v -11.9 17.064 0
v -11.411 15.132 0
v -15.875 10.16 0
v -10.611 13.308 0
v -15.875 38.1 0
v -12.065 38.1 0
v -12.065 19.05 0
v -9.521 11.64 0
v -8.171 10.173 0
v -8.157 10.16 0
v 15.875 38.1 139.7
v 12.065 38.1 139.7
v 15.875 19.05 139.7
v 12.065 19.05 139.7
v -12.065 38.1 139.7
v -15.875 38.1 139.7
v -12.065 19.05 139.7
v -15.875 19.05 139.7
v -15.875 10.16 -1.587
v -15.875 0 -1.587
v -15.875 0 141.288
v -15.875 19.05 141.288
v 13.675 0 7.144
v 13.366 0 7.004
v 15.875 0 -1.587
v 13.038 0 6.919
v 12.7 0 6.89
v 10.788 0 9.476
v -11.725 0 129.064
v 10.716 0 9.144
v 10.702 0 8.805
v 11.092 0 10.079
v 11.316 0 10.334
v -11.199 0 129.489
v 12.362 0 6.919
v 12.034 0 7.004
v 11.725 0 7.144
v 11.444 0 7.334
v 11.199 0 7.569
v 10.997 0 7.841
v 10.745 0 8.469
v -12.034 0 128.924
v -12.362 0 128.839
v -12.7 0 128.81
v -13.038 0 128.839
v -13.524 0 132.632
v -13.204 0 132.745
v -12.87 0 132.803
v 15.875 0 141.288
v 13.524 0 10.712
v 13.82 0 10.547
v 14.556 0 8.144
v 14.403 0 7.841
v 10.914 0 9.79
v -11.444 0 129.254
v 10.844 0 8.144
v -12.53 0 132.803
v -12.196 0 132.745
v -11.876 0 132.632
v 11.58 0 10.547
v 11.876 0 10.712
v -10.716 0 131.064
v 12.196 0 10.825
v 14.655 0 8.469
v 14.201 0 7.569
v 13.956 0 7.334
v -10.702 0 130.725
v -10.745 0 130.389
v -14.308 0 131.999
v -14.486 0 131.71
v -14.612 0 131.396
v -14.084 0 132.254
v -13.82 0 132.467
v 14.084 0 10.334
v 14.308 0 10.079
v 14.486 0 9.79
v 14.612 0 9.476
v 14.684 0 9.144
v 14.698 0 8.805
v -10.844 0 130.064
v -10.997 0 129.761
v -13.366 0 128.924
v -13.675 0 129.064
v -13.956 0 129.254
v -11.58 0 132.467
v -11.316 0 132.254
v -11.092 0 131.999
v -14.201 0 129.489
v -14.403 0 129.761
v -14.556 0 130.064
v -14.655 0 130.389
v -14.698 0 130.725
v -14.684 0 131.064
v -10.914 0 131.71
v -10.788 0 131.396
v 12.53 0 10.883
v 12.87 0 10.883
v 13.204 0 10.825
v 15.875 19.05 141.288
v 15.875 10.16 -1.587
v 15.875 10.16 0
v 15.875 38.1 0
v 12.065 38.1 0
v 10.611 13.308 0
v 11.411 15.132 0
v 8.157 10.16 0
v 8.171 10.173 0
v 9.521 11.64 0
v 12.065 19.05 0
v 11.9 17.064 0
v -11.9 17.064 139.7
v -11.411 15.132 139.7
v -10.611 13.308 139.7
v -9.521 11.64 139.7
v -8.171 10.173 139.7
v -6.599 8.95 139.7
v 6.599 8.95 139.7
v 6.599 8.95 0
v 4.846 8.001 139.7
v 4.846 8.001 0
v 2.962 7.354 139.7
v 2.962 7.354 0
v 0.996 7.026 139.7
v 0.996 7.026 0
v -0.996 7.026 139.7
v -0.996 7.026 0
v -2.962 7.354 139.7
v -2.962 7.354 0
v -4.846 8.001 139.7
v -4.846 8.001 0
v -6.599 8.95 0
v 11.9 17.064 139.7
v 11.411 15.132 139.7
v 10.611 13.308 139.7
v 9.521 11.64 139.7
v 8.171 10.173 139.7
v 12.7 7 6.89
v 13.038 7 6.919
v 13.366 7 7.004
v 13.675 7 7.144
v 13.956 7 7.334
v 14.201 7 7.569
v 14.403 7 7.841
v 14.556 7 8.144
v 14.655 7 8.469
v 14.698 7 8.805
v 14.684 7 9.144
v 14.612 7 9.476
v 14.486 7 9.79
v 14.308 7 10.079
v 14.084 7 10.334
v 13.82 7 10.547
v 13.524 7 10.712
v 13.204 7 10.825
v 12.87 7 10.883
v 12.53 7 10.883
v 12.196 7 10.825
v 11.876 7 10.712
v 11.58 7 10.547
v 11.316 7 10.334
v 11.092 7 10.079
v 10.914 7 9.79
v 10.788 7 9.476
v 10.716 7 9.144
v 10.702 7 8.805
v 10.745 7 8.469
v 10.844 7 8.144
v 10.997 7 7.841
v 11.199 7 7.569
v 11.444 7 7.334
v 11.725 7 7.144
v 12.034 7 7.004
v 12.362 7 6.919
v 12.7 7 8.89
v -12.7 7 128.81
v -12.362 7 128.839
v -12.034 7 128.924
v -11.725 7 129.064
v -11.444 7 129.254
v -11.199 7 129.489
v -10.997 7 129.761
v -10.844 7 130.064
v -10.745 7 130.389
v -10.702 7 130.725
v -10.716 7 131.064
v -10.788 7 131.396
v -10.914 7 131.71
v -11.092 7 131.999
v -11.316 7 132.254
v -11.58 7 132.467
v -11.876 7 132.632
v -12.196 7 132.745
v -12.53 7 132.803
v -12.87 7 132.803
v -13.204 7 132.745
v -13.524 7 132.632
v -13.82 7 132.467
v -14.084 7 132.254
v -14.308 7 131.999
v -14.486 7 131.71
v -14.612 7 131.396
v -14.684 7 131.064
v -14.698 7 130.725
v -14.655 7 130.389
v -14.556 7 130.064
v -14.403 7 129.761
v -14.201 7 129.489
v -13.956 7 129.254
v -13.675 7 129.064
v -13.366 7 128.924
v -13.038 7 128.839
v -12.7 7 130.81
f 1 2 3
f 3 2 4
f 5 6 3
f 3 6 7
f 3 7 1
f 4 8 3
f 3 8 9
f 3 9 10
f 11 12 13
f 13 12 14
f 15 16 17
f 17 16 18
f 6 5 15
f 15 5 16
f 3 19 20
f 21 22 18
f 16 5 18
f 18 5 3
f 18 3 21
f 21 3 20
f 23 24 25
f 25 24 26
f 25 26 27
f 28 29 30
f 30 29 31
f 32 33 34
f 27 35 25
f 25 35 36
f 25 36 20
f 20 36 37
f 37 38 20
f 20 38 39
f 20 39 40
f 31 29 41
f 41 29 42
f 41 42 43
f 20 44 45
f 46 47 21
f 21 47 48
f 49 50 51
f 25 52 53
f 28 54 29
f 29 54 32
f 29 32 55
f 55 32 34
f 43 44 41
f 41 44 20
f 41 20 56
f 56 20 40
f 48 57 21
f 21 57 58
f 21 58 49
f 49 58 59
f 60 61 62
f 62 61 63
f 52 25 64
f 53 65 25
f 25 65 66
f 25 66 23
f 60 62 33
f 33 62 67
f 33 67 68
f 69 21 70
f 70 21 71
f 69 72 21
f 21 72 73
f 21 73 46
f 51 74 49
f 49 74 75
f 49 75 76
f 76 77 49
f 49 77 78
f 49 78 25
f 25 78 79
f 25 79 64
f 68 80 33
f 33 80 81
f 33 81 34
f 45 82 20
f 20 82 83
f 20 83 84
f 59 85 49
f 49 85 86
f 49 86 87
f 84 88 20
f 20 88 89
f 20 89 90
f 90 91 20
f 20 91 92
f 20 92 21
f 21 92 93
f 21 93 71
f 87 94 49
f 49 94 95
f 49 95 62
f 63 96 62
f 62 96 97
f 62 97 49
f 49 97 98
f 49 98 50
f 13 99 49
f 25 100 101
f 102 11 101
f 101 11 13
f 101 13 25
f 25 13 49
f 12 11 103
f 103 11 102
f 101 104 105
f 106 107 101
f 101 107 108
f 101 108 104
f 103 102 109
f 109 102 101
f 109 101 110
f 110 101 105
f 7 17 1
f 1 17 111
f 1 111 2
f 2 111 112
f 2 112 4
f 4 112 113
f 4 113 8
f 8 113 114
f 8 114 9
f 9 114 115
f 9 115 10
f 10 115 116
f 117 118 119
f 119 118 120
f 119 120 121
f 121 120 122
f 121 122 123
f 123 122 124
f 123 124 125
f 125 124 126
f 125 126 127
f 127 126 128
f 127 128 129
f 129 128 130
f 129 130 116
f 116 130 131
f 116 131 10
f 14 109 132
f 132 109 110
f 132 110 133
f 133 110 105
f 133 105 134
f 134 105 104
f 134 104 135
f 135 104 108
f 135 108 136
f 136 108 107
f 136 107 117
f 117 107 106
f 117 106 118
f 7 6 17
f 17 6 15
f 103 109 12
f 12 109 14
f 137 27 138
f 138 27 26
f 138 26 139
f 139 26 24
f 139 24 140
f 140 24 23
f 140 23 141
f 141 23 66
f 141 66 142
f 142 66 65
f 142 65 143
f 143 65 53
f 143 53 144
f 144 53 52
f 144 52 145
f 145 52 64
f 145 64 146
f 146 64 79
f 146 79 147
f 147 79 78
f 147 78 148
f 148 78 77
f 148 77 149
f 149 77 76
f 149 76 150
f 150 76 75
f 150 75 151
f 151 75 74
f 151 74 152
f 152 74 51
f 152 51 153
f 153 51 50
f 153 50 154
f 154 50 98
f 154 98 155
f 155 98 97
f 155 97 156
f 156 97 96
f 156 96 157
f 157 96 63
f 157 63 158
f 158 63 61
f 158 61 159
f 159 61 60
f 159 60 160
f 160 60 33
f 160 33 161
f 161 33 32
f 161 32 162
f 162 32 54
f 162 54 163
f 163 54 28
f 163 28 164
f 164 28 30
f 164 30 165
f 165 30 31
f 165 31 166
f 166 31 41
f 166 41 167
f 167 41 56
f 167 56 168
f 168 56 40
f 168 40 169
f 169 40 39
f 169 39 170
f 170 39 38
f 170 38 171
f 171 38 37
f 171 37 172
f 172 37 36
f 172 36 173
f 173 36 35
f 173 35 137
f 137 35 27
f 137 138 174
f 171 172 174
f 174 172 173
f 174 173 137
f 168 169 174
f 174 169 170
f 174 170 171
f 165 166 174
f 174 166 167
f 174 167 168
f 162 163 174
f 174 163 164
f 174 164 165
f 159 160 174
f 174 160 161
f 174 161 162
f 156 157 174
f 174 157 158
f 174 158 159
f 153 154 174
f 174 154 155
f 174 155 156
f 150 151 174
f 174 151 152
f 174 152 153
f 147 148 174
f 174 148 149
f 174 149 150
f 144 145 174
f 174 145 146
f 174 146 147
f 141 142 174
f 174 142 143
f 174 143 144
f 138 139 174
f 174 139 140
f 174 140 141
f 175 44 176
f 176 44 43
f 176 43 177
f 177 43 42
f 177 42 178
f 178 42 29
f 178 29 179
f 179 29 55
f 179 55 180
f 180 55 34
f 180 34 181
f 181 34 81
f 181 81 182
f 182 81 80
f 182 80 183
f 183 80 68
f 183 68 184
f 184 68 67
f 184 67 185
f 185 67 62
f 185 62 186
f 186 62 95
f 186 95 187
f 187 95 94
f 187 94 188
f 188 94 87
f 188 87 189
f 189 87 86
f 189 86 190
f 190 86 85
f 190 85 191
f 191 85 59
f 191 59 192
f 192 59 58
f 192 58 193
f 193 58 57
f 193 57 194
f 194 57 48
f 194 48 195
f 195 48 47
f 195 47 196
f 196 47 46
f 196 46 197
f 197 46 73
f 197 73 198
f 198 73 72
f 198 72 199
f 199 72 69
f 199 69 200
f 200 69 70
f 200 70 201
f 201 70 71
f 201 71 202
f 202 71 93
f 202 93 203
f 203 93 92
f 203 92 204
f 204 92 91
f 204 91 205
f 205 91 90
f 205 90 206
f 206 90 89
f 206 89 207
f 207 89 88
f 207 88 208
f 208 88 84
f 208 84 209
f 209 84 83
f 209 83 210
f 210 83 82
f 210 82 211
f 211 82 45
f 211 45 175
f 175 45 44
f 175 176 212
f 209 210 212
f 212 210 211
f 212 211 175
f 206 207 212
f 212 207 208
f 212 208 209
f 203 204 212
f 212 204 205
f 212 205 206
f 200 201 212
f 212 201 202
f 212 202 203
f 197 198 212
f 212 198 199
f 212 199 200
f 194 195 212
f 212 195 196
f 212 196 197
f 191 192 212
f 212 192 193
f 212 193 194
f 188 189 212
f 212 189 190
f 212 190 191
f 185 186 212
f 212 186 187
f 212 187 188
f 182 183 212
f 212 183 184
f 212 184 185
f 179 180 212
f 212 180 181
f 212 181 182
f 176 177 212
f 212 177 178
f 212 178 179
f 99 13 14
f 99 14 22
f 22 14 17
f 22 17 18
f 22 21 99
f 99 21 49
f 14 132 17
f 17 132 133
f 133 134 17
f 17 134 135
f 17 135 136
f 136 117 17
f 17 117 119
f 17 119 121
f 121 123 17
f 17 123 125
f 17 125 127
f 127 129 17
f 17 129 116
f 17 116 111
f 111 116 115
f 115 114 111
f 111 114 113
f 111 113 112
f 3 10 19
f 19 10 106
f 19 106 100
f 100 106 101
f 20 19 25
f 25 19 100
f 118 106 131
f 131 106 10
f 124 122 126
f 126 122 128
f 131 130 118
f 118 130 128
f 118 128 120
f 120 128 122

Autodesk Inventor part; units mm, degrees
ref_plane "YZ Plane" through (0, 0, 0) normal (1, 0, 0) x (0, 1, 0)
ref_plane "XZ Plane" through (0, 0, 0) normal (0, 1, 0) x (-1, 0, 0)
ref_plane "XY Plane" through (0, 0, 0) normal (0, 0, 1) x (1, 0, 0)
sketch "Sketch1" plane through (0, 0, 0) normal (0, 0, 1) x (1, 0, 0)
  line L0 (-15.875, 0) -> (15.875, 0)
  line L1 (15.875, 0) -> (15.875, 38.1)
  line L2 (15.875, 38.1) -> (-15.875, 38.1)
  line L3 (-15.875, 38.1) -> (-15.875, 0)
  point P0 (0, 0)
  dimension "d2" = 31.75
  dimension "d3" = 38.1
  dimension "d4" = 15.875
  dimension "d5" = 0
extrude "Extrusion1" add sketch "Sketch1" along normal blind 139.7
sketch "Sketch2" plane through (0, 0, 139.7) normal (0, 0, 1) x (1, 0, 0)
  arc A0 (-12.065, 19.05) -> (12.065, 19.05) centre (0, 19.05) ccw
  line L0 (-15.875, 0) -> (15.875, 0) projected
  line L1 (12.065, 19.05) -> (12.065, 38.1)
  line L2 (15.875, 38.1) -> (-15.875, 38.1) projected
  line L3 (-12.065, 19.05) -> (-12.065, 38.1)
  point P0 (0, 0)
  dimension "d8" = 19.05
  dimension "d9" = 24.13
extrude "Extrusion2" cut sketch "Sketch2" against normal through all
sketch "Sketch3" plane through (-15.875, 0, 0) normal (0, -1, 0) x (1, 0, 0)
  circle A0 centre (28.575, 8.89) radius 2
  circle A1 centre (3.175, 130.81) radius 2
  line L0 (15.875, 0) -> (15.875, 139.7) construction
  line L1 (0, 139.7) -> (31.75, 139.7) construction
  line L2 (0, 0) -> (31.75, 0) construction
  line L3 (31.75, 139.7) -> (0, 139.7) construction
  dimension "d12" = 4
  dimension "d13" = 4
  dimension "d14" = 12.7
  dimension "d15" = 8.89
  dimension "d16" = 12.7
  dimension "d17" = 8.89
extrude "Heat Set Inserts" cut sketch "Sketch3" against normal blind 7
sketch "Sketch4" plane through (0, 0, 139.7) normal (0, 0, 1) x (1, 0, 0)
  line L0 (-15.875, 0) -> (15.875, 0) projected
  line L1 (15.875, 0) -> (15.875, 38.1) projected
  line L2 (-15.875, 0) -> (15.875, 0)
  line L3 (15.875, 0) -> (15.875, 19.05)
  line L4 (15.875, 19.05) -> (-15.875, 19.05)
  line L5 (-15.875, 19.05) -> (-15.875, 0)
  point P0 (0, 0)
  dimension "d20" = 19.05
extrude "Back Wall" add sketch "Sketch4" along normal blind 1.5875
sketch "Sketch5" plane through (0, 0, 0) normal (0, 0, -1) x (-1, 0, 0)
  line L0 (15.875, 0) -> (-15.875, 0) projected
  line L1 (15.875, 19.05) -> (15.875, 0) projected
  line L2 (-15.875, 0) -> (15.875, 0)
  line L3 (15.875, 0) -> (15.875, 10.16)
  line L4 (15.875, 10.16) -> (-15.875, 10.16)
  line L5 (-15.875, 10.16) -> (-15.875, 0)
  point P0 (0, 0)
  dimension "d23" = 10.16
extrude "Extrusion5" add sketch "Sketch5" along normal blind 1.5875
equation "\"d4\" = 0.5 * d2"
equation "\"d12\" = m3_heat_set_insert"
equation "\"d13\" = m3_heat_set_insert"
equation "\"d18\" = m3_heat_set_depth"
equation "\"m3_heat_set_insert\" = 4"
equation "\"m3_clearance\" = 3.4"
equation "\"m3_heat_set_depth\" = 7"
equation "\"robot_diameter\" = 354"
equation "\"hardboard_thickness\" = 5"
properties part number "NiMH_Holder"
